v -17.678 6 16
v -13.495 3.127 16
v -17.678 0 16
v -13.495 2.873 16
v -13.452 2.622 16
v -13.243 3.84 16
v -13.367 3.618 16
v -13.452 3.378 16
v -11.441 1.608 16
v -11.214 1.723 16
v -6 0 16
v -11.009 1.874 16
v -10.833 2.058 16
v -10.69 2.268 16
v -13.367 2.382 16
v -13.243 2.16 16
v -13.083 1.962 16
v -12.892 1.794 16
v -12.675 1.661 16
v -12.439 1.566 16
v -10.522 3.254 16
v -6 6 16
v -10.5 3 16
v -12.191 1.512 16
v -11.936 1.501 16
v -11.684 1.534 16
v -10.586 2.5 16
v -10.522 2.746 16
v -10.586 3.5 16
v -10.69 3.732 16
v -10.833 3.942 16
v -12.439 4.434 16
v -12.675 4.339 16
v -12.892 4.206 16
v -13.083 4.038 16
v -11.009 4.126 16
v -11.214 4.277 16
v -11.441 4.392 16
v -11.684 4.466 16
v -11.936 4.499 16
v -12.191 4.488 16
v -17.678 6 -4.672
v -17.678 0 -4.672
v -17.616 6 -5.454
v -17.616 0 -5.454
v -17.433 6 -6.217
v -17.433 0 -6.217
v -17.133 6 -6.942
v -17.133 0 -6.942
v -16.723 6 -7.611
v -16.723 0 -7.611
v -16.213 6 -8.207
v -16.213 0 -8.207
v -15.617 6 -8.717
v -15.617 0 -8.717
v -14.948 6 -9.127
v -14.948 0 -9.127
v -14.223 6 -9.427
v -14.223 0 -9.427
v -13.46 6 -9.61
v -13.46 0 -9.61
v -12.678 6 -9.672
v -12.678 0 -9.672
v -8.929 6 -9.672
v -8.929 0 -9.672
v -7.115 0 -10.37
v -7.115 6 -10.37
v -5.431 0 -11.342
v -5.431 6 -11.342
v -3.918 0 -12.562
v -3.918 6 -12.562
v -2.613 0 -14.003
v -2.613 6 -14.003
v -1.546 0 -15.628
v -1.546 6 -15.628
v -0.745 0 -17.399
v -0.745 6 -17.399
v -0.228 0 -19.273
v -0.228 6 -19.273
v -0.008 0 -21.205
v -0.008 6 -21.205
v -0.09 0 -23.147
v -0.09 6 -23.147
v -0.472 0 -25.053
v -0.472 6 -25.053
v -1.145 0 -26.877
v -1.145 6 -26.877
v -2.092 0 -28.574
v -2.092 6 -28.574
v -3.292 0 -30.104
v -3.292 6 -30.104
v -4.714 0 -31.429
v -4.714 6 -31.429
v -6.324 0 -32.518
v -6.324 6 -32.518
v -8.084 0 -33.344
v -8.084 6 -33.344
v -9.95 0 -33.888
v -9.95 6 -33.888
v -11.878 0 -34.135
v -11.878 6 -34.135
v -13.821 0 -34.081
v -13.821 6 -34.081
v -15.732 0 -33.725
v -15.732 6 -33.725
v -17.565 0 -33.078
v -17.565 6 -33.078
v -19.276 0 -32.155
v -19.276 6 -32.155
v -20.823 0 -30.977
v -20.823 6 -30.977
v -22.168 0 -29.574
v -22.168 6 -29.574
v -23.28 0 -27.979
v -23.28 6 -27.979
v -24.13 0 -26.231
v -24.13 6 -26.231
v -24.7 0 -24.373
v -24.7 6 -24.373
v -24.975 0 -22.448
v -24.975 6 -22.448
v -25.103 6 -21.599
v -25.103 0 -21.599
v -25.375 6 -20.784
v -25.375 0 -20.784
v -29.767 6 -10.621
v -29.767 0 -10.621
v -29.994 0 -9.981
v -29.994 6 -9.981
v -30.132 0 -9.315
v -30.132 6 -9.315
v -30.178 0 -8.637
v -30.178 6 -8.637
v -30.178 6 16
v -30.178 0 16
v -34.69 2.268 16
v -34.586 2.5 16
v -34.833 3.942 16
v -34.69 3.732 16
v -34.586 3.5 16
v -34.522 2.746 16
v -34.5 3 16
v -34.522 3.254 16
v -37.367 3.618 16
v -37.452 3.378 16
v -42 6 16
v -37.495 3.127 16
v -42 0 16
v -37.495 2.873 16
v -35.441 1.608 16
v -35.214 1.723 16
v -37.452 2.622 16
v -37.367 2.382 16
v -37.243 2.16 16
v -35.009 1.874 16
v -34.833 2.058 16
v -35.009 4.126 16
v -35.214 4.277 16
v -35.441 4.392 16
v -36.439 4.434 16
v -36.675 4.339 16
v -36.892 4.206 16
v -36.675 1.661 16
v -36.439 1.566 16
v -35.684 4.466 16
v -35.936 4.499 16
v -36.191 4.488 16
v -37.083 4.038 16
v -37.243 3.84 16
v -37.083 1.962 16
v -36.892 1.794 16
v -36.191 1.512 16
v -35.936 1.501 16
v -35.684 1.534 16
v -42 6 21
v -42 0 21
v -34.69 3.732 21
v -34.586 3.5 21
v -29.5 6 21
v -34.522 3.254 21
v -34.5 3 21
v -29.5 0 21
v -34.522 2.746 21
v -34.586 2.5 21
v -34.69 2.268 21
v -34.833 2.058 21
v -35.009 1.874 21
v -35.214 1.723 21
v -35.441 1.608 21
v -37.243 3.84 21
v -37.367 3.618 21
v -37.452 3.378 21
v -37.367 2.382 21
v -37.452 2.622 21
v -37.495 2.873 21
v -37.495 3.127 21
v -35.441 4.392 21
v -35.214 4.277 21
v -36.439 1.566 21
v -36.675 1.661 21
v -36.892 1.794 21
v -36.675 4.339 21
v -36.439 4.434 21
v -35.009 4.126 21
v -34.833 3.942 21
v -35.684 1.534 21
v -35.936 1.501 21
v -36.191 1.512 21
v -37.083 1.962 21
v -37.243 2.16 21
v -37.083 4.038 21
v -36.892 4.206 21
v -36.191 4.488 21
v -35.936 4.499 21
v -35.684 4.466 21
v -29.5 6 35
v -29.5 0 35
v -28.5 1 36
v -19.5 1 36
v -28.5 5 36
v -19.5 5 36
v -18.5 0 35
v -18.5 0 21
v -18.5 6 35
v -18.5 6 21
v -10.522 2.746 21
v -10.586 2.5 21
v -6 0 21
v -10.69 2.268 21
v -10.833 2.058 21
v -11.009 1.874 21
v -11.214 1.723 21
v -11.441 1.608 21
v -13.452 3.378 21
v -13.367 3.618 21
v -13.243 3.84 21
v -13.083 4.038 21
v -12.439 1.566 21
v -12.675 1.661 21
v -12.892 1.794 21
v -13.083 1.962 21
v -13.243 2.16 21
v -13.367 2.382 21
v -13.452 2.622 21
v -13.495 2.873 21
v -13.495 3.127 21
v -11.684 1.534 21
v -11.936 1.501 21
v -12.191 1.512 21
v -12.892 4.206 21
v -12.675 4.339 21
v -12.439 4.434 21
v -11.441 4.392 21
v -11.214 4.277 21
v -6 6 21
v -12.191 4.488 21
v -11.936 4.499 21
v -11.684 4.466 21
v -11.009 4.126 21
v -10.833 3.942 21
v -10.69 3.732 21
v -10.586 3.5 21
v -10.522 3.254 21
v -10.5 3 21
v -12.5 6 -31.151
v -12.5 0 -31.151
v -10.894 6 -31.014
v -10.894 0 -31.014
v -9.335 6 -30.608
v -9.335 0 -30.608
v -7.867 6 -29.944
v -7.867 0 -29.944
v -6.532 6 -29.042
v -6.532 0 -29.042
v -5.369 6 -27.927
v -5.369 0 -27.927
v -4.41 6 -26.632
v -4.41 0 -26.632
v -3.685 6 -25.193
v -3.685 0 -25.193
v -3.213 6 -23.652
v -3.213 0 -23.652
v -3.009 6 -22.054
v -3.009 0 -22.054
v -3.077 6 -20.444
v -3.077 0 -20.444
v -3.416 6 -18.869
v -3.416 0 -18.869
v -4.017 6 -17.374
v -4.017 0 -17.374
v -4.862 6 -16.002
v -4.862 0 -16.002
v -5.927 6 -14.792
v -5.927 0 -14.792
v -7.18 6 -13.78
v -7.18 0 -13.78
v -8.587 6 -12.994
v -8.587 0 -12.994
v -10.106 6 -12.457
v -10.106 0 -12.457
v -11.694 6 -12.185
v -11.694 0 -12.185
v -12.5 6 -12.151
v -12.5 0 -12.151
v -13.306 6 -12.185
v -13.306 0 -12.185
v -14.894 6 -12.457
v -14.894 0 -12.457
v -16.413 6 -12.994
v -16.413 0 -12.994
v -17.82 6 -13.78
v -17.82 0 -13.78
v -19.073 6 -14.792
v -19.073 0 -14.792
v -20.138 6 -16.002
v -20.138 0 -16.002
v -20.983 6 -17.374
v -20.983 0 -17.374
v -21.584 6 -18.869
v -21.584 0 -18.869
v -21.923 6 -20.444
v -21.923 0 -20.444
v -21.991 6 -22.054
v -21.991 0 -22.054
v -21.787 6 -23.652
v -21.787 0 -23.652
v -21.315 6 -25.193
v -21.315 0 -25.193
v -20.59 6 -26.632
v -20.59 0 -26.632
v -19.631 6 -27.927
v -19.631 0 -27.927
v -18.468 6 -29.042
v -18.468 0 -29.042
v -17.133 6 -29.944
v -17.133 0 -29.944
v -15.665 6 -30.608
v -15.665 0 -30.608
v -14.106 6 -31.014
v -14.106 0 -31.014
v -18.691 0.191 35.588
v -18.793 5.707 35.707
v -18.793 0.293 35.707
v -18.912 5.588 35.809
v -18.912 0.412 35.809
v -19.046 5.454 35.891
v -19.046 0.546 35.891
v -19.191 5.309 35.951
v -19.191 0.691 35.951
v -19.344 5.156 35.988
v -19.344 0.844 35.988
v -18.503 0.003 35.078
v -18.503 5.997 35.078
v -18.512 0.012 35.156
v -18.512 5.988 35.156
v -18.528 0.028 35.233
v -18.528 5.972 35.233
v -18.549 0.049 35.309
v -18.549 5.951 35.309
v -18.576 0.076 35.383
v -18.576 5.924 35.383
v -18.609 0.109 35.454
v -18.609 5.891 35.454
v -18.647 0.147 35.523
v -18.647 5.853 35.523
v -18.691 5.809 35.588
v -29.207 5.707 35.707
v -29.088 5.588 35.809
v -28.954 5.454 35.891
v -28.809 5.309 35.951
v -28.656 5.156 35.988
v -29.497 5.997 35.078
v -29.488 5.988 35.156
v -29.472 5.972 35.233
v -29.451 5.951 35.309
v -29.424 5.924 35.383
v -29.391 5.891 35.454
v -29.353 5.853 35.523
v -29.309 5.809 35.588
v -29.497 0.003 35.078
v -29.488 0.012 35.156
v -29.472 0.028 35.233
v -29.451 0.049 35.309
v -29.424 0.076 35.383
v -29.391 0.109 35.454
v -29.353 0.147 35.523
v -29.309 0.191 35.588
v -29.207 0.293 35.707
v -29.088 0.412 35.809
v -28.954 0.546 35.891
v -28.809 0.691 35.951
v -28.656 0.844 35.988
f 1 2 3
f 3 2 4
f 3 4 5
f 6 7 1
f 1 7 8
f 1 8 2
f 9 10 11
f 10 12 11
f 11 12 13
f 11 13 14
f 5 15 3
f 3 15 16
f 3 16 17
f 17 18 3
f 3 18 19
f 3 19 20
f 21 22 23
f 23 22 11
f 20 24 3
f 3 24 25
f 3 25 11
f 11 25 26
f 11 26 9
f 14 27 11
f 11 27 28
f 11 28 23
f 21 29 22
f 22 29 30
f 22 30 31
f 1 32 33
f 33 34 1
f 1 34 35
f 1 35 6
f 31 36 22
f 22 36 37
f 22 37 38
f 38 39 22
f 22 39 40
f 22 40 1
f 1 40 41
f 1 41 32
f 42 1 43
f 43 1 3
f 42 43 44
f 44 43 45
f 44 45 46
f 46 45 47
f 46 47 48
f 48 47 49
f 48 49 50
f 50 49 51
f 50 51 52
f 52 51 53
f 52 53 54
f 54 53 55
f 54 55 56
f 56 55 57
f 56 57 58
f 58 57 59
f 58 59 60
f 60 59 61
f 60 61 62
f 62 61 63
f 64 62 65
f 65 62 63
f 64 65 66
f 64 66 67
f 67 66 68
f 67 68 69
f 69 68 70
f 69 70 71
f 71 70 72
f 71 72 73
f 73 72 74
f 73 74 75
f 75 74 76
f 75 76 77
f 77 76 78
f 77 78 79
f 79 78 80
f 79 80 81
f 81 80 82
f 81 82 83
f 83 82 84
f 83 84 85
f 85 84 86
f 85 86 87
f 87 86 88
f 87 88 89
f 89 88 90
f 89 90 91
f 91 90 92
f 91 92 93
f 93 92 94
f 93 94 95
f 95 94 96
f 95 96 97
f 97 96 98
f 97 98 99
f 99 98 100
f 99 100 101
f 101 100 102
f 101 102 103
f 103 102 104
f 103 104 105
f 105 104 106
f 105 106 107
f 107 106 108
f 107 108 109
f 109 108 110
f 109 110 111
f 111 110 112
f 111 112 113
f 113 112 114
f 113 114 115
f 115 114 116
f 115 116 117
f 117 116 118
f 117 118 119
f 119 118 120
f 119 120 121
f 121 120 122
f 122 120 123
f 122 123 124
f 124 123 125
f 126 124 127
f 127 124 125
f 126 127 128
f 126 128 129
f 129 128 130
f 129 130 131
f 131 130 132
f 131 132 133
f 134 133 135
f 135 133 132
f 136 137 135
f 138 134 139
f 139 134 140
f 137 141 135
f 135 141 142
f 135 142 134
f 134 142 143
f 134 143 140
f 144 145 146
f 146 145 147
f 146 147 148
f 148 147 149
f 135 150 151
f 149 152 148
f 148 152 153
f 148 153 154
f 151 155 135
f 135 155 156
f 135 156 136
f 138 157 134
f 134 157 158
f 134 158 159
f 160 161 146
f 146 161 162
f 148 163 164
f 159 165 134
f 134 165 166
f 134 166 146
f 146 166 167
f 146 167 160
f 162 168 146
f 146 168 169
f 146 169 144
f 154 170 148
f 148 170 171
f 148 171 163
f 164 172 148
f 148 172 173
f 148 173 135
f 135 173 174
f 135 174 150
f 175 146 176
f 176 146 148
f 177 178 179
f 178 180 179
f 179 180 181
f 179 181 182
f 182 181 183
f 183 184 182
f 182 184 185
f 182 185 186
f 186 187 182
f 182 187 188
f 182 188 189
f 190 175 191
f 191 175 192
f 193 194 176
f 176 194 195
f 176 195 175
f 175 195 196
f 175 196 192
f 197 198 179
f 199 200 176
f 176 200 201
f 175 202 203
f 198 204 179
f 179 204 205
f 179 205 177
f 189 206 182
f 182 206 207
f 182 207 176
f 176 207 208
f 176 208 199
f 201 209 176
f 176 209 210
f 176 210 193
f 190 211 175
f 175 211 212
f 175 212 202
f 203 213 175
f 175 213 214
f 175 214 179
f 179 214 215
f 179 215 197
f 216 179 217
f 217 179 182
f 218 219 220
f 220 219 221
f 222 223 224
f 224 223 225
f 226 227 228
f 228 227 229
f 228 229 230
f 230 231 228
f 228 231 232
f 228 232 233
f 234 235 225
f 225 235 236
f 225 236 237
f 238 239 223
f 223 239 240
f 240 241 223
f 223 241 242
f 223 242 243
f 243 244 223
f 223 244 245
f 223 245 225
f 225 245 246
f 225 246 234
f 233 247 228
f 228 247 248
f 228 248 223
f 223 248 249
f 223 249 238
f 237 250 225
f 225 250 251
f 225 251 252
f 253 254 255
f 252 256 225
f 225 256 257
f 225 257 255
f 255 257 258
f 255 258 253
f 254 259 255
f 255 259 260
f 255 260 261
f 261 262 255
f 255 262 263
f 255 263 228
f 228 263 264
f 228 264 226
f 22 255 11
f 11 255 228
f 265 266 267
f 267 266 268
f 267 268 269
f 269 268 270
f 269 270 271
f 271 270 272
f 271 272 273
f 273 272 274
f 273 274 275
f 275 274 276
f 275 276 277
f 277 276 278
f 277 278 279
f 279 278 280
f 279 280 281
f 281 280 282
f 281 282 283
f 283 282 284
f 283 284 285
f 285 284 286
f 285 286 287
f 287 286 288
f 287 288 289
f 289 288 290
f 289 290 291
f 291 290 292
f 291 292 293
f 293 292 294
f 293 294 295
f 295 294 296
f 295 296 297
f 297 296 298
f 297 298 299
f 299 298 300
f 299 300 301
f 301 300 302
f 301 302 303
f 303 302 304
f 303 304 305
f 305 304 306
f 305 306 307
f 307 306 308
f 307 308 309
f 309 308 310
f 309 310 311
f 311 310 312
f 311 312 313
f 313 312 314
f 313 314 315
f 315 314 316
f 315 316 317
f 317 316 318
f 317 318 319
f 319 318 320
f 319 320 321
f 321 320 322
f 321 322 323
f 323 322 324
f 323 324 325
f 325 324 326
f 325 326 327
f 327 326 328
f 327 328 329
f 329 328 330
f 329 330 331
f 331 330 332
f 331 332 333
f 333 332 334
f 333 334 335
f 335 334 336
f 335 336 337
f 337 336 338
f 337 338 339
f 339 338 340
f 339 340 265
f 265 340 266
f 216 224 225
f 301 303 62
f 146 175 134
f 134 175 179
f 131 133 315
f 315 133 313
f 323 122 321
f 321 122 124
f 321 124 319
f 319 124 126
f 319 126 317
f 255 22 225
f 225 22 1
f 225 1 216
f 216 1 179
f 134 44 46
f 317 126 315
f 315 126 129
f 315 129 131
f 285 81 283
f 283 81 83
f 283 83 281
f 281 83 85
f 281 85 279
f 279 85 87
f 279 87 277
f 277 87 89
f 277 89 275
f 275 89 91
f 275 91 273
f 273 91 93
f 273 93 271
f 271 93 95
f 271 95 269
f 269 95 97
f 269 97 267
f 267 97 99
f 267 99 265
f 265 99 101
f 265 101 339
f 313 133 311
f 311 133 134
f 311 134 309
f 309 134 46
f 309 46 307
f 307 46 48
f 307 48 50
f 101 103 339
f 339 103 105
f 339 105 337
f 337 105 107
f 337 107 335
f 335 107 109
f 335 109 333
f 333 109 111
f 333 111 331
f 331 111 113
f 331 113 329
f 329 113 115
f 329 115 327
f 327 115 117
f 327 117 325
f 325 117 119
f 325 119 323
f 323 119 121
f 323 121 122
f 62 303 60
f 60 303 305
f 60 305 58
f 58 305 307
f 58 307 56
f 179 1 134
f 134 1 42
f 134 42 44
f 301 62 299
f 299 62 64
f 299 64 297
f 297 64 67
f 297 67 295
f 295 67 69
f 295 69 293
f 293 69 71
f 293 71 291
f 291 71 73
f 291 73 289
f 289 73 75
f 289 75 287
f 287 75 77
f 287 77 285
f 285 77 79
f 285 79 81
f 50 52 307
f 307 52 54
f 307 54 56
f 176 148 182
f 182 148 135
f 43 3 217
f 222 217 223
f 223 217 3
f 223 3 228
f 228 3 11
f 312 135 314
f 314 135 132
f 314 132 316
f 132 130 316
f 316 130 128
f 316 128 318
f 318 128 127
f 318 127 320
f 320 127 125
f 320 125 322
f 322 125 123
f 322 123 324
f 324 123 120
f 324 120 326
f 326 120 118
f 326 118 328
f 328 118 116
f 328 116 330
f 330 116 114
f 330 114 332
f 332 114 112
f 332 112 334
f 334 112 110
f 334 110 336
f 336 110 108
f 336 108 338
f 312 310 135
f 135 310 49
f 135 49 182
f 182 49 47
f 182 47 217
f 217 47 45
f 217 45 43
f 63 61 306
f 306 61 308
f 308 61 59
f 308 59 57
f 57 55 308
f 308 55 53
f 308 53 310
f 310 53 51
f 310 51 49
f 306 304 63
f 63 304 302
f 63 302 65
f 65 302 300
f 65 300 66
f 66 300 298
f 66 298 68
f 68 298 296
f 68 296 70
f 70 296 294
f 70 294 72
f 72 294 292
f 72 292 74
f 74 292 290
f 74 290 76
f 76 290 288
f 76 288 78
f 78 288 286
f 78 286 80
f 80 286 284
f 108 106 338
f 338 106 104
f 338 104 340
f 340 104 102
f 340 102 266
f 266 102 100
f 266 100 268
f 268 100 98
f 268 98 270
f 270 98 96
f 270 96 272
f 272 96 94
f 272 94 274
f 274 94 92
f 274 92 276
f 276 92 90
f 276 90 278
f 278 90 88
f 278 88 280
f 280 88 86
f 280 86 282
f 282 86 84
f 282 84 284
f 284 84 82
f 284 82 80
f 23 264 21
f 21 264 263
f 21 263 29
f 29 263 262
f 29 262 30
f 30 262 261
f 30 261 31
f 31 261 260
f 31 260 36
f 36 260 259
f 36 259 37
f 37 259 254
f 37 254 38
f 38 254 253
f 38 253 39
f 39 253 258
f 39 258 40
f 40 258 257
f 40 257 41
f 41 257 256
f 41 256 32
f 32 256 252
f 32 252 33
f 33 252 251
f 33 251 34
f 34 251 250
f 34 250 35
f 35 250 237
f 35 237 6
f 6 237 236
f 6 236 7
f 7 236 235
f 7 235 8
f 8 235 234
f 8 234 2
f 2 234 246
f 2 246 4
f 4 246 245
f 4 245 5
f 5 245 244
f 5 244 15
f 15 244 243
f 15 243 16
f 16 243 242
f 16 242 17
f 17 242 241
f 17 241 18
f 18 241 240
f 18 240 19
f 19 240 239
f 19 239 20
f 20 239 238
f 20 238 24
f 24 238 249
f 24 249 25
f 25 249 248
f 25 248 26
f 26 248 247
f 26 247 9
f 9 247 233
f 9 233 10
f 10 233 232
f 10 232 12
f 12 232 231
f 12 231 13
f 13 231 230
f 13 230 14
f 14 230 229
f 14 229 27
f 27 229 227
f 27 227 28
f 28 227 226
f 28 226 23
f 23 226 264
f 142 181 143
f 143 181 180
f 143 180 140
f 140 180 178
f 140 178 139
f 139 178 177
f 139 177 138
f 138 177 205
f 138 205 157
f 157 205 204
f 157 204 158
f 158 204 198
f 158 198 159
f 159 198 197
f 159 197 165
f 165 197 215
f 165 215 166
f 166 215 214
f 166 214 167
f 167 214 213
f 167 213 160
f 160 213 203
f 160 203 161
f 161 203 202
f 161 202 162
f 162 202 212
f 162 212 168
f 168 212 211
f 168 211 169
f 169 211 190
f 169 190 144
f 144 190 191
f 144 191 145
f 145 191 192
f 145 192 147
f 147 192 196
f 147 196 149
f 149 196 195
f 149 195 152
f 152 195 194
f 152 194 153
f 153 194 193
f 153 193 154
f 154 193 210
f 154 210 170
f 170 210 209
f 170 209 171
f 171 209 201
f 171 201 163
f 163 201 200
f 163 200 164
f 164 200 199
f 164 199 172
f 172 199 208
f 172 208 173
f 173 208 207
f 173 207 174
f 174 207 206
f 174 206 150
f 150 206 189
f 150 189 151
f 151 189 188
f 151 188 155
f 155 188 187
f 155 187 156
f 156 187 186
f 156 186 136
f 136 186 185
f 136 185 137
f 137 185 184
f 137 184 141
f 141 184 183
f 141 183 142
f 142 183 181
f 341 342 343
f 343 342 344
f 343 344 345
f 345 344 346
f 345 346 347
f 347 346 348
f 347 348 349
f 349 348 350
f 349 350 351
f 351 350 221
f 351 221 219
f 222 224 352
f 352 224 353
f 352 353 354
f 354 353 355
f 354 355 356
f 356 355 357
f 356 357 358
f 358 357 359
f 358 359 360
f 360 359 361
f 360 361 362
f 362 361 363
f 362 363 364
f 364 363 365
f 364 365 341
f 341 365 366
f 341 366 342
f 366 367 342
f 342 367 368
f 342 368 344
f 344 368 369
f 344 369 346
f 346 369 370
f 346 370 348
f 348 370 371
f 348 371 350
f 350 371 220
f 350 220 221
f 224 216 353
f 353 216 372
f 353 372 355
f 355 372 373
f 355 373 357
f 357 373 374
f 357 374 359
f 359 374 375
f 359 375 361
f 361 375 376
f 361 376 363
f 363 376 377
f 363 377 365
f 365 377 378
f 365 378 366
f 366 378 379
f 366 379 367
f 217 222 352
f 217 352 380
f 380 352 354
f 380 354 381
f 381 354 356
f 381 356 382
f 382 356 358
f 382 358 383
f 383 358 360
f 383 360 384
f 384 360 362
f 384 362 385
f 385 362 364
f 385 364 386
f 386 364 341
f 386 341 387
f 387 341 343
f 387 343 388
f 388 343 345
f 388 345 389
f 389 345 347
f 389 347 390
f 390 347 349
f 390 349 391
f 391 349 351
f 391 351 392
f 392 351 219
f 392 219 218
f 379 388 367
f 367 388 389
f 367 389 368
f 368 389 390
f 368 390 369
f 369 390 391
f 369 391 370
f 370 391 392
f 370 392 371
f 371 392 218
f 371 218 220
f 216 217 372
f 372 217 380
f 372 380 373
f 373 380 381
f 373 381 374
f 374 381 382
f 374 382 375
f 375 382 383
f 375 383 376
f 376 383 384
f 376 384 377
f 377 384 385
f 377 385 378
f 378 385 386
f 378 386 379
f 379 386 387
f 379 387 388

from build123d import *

# Parameters (mm, degrees)
CROQUIS1_R              = 9.5
SALIENTE_EXTRUIR1_DEPTH = 6
CROQUIS2_R              = 1.5
CORTAR_EXTRUIR1_DEPTH   = 6
REDONDEO1_R             = 1


with BuildPart() as part:
    # Croquis1 → Saliente-Extruir1 (new body)
    with BuildSketch(Plane(origin=(0, 0, 0), x_dir=(1, 0, 0), z_dir=(0, 1, 0))):
        with BuildLine():
            Line((-25.374701647, 20.783734094), (-29.767291136, 10.621141392))
            ThreePointArc((-29.767291136, 10.621141392), (-29.942112128, 10.153967486), (-30.069514751, 9.671699501))
            ThreePointArc((-30.069514751, 9.671699501), (-30.150557328, 9.157351254), (-30.17766953, 8.637363805))
            Line((-30.17766953, 8.637363805), (-30.17766953, -16))
            Line((-30.17766953, -16), (-42, -16))
            Line((-42, -16), (-42, -21))
            Line((-42, -21), (-29.5, -21))
            Line((-29.5, -21), (-29.5, -36))
            Line((-29.5, -36), (-18.5, -36))
            Line((-18.5, -36), (-18.5, -21))
            Line((-18.5, -21), (-6, -21))
            Line((-6, -21), (-6, -16))
            Line((-6, -16), (-17.67766953, -16))
            Line((-17.67766953, -16), (-17.67766953, 4.671699501))
            ThreePointArc((-17.67766953, 4.671699501), (-16.213203436, 8.207233407), (-12.67766953, 9.671699501))
            Line((-12.67766953, 9.671699501), (-8.928571429, 9.671699501))
            ThreePointArc((-8.928571429, 9.671699501), (-4.713647249, 31.429321655), (-24.974516609, 22.448404084))
            ThreePointArc((-24.974516609, 22.448404084), (-25.102827296, 21.598812807), (-25.374701647, 20.783734094))
        make_face()
        with Locations(Location((-12.5, 21.650635095, 0), (0, 0, 270))):
            Circle(CROQUIS1_R, mode=Mode.SUBTRACT)
    extrude(amount=SALIENTE_EXTRUIR1_DEPTH)

    # Croquis2 → Cortar-Extruir1 (cut)
    with BuildSketch(Plane.XY.offset(21)):
        with Locations((-36, 3)):
            Circle(CROQUIS2_R)
        with Locations((-12, 3)):
            Circle(CROQUIS2_R)
    extrude(amount=-CORTAR_EXTRUIR1_DEPTH, mode=Mode.SUBTRACT)

    # Redondeo1
    redondeo1_edges = [part.edges().sort_by_distance(p)[0] for p in [
        (-24, 0, 36),
        (-18.5, 3, 36),
        (-29.5, 3, 36),
        (-24, 6, 36),
    ]]
    fillet(redondeo1_edges, radius=REDONDEO1_R)


solid = part.part
